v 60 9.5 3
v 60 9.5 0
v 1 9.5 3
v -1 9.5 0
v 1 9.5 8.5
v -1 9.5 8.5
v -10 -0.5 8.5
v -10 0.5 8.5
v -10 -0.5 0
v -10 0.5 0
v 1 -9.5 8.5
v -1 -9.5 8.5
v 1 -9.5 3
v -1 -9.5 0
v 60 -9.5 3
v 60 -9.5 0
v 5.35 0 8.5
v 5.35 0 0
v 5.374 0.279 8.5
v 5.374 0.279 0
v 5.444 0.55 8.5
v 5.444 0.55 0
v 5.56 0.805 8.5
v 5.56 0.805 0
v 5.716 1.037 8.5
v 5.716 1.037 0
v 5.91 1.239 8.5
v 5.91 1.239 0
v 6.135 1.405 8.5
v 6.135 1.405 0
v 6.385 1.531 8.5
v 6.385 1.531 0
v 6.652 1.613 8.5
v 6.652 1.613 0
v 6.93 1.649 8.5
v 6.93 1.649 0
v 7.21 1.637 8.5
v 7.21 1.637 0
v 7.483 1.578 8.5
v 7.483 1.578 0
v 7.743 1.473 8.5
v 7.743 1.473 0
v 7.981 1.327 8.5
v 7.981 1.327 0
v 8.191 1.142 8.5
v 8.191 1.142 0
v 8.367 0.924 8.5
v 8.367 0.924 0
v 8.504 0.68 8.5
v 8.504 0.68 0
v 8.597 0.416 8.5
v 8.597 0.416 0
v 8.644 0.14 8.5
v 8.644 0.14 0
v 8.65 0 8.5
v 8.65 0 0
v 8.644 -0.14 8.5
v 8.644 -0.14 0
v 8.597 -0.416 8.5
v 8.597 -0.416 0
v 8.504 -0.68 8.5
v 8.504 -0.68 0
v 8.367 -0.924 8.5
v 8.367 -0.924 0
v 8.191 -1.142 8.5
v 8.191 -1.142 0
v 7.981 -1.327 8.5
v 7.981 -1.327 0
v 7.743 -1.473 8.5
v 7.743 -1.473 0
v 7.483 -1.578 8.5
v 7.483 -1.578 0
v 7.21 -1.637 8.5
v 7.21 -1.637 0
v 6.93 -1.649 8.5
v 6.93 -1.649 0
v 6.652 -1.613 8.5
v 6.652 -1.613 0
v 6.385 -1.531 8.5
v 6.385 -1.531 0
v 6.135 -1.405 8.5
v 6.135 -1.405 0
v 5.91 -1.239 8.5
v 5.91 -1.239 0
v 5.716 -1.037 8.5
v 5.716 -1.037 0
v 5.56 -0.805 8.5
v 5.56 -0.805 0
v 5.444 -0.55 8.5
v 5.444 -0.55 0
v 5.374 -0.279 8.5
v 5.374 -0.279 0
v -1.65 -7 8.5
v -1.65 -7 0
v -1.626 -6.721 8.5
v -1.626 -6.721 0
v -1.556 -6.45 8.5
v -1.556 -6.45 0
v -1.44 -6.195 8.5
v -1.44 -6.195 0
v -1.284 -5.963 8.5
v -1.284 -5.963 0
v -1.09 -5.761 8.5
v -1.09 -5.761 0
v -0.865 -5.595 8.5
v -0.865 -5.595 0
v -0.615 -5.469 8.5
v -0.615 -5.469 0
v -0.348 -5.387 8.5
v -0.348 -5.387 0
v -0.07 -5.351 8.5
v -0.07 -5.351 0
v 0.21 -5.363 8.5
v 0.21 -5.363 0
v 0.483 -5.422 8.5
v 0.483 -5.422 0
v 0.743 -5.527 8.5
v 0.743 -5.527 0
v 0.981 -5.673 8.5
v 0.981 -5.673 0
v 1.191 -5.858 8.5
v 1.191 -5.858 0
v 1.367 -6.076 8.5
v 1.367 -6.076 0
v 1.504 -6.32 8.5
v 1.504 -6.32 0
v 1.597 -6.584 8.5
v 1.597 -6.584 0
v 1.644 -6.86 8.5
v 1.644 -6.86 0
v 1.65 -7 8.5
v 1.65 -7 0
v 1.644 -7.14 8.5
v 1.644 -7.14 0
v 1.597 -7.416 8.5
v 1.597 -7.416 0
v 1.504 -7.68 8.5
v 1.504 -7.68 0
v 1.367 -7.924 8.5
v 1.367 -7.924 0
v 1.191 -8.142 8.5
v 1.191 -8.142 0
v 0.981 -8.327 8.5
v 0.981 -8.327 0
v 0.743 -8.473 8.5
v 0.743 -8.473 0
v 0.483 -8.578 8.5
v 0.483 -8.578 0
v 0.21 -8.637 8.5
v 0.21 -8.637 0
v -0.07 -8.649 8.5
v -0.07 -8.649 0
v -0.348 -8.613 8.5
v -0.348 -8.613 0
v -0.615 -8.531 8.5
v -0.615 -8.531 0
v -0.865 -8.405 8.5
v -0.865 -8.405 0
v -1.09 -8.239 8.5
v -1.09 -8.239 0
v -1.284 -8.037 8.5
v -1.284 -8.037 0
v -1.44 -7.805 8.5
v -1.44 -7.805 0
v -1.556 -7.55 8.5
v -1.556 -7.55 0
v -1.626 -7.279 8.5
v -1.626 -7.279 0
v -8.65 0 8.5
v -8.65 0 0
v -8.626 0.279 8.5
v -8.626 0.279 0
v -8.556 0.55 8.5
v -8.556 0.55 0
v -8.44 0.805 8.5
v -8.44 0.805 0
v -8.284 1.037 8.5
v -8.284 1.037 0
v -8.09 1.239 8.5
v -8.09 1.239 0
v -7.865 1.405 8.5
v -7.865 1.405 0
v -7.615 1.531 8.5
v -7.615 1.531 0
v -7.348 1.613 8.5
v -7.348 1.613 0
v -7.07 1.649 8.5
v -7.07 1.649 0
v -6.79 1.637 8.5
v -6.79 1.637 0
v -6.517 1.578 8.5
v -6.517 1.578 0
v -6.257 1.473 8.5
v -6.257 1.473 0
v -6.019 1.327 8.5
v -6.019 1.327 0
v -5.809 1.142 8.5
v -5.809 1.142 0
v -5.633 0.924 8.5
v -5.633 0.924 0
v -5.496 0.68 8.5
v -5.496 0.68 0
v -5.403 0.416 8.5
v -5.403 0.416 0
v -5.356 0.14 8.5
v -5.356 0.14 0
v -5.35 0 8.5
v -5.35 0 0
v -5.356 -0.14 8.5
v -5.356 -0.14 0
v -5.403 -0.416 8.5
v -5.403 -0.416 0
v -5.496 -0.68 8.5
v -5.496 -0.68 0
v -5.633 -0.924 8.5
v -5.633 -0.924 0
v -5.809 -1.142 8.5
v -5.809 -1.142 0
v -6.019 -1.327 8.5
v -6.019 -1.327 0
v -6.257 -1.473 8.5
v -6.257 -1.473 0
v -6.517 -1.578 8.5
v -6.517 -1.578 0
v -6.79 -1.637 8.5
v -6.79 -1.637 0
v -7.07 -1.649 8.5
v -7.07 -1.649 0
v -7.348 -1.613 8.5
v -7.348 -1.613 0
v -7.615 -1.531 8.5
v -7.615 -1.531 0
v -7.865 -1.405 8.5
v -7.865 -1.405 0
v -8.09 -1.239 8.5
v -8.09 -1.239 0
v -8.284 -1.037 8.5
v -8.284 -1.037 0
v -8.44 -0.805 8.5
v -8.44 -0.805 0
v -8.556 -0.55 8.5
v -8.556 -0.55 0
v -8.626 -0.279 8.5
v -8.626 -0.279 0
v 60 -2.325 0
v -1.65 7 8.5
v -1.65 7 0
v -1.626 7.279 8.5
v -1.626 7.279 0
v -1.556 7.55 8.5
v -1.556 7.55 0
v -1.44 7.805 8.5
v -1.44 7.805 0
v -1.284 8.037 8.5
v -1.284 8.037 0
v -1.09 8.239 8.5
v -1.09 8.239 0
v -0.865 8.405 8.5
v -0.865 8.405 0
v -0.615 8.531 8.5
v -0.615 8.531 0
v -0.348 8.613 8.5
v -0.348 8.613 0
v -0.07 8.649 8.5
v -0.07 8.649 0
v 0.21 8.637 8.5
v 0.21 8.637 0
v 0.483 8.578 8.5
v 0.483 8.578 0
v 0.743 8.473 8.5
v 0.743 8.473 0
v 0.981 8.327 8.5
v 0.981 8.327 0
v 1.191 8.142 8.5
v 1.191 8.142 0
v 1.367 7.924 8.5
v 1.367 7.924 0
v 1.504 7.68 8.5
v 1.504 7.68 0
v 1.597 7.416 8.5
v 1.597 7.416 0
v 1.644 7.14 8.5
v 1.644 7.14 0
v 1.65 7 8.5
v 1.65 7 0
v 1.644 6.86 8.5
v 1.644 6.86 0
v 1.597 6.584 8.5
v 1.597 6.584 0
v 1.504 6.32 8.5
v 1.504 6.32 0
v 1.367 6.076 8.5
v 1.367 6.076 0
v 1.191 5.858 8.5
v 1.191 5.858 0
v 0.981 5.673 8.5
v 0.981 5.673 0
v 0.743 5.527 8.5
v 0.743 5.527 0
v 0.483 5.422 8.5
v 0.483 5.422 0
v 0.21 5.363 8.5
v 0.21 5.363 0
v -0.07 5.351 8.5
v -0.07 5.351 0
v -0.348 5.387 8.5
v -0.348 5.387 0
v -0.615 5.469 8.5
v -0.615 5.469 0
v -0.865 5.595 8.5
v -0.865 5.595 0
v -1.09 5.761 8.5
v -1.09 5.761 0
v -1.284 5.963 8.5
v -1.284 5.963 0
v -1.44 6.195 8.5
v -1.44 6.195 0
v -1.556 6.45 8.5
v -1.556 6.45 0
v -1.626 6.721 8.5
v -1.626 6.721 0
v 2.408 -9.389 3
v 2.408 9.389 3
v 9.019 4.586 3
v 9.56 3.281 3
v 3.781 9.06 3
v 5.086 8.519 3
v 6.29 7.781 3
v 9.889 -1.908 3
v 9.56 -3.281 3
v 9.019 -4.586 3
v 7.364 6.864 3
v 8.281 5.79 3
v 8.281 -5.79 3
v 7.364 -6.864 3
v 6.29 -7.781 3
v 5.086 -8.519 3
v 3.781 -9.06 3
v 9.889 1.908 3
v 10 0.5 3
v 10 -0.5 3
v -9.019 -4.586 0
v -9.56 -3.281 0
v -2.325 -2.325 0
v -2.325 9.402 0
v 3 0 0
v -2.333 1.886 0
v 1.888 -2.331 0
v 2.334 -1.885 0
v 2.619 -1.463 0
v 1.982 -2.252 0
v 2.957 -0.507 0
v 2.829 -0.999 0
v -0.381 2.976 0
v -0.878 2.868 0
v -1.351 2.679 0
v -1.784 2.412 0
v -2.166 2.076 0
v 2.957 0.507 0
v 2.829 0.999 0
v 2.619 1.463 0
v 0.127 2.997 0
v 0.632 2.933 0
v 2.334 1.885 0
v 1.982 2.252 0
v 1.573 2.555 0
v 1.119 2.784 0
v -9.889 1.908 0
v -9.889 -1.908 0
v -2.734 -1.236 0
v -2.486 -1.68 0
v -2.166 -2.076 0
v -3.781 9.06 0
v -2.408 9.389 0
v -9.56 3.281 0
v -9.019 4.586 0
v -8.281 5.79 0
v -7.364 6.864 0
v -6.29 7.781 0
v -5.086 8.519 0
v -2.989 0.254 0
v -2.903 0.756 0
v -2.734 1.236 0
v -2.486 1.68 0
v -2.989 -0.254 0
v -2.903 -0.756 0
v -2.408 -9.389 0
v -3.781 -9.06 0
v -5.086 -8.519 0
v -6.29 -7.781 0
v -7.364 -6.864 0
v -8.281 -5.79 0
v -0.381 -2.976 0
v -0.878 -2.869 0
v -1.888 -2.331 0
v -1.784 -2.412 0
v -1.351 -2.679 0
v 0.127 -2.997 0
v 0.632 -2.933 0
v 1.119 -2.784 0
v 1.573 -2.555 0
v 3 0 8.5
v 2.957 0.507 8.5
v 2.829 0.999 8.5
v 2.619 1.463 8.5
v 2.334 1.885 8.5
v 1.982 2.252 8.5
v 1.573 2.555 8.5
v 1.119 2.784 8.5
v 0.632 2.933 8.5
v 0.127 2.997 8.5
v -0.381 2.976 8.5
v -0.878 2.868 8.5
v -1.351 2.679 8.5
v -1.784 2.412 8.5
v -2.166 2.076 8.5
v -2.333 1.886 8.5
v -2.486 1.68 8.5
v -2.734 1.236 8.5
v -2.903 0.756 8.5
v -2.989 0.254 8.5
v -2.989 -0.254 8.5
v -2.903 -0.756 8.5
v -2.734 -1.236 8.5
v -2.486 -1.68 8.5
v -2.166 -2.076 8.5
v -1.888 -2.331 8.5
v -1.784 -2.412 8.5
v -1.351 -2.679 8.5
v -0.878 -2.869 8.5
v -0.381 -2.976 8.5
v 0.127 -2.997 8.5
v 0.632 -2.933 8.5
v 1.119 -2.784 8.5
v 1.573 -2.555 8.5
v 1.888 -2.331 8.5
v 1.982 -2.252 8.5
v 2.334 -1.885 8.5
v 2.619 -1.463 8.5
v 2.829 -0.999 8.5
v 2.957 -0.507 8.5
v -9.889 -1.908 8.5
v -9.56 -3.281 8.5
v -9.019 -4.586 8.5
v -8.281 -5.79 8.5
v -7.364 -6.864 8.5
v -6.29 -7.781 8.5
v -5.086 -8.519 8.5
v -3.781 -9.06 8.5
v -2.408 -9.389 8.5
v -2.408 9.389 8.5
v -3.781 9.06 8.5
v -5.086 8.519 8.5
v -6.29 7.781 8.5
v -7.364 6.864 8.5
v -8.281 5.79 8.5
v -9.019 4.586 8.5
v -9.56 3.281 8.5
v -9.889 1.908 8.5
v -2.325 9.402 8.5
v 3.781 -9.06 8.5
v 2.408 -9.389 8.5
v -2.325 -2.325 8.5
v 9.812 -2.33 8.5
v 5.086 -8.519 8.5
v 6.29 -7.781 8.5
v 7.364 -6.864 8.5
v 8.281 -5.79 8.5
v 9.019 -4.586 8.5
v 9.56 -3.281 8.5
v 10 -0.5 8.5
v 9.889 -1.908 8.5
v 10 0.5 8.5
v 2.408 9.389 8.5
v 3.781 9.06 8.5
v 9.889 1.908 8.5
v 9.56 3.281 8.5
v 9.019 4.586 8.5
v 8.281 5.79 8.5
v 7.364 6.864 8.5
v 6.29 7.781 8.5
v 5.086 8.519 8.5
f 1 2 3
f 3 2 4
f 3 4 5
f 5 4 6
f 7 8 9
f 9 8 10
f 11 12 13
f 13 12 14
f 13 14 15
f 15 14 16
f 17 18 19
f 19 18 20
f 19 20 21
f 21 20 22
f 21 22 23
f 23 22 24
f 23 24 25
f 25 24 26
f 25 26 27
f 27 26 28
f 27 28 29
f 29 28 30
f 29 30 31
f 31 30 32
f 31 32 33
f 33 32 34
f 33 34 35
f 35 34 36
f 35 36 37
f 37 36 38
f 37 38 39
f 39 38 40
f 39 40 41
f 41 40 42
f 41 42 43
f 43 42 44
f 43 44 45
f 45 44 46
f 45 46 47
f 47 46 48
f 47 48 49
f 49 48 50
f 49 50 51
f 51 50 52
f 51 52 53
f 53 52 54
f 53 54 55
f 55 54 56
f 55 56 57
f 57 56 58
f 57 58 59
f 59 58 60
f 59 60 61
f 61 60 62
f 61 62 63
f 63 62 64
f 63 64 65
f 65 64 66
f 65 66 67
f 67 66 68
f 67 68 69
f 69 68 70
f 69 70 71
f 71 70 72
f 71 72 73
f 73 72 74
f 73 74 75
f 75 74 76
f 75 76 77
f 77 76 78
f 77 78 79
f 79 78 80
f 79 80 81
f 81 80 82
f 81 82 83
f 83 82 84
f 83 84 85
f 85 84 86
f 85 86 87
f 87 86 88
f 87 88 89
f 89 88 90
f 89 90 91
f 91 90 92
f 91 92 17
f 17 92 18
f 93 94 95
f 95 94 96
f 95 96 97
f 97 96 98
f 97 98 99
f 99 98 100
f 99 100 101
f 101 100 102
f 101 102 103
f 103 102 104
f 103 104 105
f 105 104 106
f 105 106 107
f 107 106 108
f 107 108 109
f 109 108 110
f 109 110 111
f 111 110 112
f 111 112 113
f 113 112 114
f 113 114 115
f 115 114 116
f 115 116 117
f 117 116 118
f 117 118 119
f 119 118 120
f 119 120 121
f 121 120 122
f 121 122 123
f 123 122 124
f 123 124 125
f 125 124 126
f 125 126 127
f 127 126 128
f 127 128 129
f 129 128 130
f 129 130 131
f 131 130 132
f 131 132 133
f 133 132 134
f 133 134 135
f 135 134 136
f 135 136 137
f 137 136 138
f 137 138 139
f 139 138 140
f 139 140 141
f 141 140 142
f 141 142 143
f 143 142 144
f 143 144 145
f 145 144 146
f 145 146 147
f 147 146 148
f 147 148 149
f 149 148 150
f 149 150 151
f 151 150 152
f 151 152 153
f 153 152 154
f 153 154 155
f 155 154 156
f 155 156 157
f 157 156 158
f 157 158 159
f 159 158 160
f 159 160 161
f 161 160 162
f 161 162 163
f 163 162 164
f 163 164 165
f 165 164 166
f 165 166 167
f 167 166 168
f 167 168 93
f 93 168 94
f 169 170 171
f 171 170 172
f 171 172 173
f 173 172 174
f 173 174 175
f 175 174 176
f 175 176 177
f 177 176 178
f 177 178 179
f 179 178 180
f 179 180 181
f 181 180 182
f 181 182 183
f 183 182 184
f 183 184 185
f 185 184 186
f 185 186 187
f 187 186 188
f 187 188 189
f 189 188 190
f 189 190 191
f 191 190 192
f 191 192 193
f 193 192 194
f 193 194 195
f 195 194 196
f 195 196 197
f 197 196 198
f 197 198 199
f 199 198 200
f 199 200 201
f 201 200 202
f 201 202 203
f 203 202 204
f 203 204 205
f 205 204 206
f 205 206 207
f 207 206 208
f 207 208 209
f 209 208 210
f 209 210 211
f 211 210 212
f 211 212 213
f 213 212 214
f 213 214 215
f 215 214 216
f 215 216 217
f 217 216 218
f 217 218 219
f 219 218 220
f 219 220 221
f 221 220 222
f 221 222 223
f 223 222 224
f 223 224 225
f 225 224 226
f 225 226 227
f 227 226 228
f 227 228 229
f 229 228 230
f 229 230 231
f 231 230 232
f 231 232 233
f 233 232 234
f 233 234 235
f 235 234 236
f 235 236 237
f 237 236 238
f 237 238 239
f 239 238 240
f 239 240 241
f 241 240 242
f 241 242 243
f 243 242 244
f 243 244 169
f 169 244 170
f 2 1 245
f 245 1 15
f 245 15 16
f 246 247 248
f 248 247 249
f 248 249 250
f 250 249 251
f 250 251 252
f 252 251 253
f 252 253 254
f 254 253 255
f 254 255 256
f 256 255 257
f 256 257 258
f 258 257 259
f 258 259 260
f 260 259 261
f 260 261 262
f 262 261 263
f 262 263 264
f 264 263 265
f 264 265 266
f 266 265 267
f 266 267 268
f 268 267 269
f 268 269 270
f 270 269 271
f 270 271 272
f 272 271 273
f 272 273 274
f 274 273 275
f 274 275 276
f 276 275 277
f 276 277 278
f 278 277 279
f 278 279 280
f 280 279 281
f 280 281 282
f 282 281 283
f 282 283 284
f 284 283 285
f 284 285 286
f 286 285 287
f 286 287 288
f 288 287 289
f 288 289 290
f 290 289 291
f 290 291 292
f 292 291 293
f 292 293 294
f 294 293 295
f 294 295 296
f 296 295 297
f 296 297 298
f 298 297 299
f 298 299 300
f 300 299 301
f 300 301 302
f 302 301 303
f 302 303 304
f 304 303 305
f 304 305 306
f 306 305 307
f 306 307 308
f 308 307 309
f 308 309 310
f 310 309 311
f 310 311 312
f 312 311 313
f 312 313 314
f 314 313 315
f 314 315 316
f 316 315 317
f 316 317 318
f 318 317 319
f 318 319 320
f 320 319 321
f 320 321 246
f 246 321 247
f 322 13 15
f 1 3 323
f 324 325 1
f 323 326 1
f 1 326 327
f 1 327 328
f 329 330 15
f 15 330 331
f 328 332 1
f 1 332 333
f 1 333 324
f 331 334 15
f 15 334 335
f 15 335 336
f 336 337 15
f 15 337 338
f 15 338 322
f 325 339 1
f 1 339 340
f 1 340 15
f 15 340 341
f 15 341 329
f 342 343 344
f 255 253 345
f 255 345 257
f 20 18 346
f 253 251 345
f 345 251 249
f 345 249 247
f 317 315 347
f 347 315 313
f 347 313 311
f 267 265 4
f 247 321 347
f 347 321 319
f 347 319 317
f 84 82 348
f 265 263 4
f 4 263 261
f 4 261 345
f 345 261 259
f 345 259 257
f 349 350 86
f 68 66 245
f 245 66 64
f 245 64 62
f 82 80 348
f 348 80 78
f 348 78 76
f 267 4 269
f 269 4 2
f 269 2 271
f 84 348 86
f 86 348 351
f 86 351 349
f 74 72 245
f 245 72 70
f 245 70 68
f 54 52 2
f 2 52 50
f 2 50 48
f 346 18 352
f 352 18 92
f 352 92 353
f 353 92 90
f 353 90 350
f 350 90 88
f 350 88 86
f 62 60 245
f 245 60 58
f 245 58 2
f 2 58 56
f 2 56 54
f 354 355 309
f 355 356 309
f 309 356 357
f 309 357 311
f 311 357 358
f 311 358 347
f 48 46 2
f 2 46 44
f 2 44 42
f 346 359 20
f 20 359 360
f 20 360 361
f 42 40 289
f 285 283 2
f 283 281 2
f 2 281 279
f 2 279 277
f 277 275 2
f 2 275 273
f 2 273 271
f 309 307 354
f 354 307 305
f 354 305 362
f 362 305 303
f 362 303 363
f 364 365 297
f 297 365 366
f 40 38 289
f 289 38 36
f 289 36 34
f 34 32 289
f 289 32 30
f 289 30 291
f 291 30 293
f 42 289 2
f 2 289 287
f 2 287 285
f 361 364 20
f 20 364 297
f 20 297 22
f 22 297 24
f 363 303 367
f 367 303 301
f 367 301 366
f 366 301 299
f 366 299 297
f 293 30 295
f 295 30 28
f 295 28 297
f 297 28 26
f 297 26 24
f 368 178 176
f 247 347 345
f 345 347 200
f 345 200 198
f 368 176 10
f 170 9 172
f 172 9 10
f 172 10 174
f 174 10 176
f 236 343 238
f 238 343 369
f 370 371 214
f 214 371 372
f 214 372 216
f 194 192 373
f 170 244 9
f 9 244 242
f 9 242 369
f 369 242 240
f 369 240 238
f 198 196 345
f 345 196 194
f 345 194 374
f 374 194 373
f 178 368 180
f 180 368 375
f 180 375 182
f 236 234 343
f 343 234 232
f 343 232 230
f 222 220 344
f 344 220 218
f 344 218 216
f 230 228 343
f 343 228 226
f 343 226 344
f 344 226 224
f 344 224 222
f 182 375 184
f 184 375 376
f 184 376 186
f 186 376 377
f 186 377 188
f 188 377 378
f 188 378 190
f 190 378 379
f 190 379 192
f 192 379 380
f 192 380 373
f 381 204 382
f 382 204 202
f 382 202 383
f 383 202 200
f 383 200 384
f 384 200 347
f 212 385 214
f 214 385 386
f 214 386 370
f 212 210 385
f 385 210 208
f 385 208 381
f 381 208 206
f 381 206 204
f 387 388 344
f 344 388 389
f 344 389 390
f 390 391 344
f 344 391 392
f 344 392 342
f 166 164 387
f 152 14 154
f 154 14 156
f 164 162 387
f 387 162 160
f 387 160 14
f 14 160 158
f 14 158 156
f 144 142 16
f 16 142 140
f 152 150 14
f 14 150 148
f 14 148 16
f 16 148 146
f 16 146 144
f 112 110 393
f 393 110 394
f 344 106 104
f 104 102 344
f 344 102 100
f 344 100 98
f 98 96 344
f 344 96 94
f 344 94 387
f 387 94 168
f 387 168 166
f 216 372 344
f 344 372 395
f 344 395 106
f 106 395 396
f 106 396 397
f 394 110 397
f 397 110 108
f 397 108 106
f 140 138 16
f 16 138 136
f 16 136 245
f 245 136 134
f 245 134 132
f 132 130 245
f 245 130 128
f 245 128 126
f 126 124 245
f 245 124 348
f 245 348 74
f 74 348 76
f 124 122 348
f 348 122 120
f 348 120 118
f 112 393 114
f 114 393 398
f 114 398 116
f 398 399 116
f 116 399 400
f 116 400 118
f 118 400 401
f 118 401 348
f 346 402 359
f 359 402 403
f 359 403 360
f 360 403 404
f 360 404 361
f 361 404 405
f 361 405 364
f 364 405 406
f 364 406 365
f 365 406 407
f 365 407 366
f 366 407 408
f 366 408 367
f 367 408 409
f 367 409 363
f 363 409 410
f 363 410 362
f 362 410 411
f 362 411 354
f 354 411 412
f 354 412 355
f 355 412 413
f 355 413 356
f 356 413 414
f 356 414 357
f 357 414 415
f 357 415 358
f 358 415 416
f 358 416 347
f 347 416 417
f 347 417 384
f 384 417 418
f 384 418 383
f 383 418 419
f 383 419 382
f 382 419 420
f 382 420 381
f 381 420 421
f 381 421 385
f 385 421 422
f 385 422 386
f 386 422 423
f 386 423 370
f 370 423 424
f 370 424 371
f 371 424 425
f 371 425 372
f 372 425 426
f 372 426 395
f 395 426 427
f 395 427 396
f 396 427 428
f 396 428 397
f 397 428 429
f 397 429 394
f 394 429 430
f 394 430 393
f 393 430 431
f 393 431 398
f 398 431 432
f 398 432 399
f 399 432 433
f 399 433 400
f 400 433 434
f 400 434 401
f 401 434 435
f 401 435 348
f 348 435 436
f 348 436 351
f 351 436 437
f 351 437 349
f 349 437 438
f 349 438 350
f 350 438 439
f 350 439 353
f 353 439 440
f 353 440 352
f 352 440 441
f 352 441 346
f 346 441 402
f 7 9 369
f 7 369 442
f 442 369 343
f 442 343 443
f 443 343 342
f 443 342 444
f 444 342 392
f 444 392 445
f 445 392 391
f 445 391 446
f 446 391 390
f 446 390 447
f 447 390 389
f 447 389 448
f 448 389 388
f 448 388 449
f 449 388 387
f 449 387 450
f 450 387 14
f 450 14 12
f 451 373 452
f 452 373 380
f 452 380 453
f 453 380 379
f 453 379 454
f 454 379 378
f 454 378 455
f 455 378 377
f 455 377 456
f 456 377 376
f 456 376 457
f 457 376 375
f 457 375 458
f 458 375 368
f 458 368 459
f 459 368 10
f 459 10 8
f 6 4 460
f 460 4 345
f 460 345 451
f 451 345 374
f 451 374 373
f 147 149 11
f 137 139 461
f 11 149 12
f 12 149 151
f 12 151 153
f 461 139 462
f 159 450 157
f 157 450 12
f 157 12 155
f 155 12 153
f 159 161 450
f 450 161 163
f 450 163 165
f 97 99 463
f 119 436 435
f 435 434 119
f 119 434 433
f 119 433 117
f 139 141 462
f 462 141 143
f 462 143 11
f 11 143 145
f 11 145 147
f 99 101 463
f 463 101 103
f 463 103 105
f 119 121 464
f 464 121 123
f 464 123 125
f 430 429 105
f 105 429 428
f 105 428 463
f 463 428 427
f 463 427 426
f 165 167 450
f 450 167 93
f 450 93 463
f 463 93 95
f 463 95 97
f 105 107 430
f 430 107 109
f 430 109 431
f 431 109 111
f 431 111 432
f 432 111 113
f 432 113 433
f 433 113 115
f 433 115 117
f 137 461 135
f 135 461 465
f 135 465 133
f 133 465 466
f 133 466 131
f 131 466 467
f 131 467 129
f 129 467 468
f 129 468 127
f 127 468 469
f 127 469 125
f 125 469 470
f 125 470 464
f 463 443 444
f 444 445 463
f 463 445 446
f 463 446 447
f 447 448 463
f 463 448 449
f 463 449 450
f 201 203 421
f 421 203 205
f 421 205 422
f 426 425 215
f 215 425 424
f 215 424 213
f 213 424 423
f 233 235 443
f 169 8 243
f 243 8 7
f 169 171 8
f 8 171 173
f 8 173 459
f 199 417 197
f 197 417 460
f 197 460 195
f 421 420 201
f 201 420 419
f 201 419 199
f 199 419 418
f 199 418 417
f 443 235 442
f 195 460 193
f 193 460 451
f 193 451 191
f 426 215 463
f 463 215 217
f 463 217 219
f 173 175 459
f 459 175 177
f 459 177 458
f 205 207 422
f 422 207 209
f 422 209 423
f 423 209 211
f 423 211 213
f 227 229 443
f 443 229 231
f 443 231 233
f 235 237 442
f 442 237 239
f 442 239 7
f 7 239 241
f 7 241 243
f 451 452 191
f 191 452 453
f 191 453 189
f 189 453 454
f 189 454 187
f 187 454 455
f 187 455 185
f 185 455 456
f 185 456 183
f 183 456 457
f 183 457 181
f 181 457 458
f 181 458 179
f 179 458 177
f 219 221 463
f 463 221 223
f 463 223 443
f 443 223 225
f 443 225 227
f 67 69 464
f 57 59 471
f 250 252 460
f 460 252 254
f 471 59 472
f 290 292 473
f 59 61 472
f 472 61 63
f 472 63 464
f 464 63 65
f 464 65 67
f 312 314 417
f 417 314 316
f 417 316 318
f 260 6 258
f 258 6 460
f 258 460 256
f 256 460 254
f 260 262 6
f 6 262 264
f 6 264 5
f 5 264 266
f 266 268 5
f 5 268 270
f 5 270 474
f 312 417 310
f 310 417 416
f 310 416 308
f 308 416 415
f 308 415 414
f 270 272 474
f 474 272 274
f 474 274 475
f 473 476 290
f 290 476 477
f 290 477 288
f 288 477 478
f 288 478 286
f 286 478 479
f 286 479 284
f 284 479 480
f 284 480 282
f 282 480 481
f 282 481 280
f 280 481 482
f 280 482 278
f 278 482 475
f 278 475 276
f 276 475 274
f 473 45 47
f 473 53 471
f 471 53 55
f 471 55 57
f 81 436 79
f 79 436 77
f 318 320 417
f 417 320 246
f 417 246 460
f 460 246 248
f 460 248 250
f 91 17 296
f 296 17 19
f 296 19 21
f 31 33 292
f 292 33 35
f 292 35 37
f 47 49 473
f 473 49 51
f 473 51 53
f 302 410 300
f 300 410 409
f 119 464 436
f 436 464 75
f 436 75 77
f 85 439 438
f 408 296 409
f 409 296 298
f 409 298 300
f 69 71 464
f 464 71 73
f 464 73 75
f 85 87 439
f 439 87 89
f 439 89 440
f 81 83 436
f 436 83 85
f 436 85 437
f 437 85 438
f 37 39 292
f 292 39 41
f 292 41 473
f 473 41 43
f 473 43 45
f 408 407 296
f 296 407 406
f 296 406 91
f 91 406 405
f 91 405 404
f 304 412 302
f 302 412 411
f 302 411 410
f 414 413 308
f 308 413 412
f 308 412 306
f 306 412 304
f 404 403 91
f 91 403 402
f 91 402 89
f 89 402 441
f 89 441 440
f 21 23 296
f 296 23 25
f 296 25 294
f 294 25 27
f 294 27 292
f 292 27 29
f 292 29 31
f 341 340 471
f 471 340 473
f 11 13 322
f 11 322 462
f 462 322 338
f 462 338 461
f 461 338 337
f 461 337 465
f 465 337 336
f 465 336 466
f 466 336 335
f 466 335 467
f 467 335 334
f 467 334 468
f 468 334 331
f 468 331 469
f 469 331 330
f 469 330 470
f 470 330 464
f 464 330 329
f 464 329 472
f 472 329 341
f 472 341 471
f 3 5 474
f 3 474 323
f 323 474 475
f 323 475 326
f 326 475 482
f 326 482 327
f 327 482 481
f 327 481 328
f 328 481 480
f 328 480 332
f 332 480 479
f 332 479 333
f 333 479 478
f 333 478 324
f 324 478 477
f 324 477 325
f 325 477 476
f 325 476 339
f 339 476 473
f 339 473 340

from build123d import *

# Parameters (mm, degrees)
SKETCH1_W           = 70
SKETCH1_H           = 19
SKETCH1_R           = 1.65
BOSS_EXTRUDE1_DEPTH = 3
SKETCH2_R           = 3
CUT_EXTRUDE1_DEPTH  = 3
FILLET2_R           = 9
SKETCH3_R           = 1.65
SKETCH3_R_2         = 3
BOSS_EXTRUDE2_DEPTH = 5.5
FILLET3_R           = 9


with BuildPart() as part:
    # Sketch1 → Boss-Extrude1 (new body)
    with BuildSketch(Plane.XY):
        with Locations((25, 0)):
            Rectangle(SKETCH1_W, SKETCH1_H)
        with Locations((0, 7)):
            Circle(SKETCH1_R, mode=Mode.SUBTRACT)
        with Locations((7, 0)):
            Circle(SKETCH1_R, mode=Mode.SUBTRACT)
        with Locations((0, -7)):
            Circle(SKETCH1_R, mode=Mode.SUBTRACT)
        with Locations((-7, 0)):
            Circle(SKETCH1_R, mode=Mode.SUBTRACT)
    extrude(amount=BOSS_EXTRUDE1_DEPTH)

    # Sketch2 → Cut-Extrude1 (cut)
    with BuildSketch(Plane.XY.offset(3)):
        Circle(SKETCH2_R)
    extrude(amount=-CUT_EXTRUDE1_DEPTH, mode=Mode.SUBTRACT)

    # Fillet2
    fillet2_edges = [part.edges().sort_by_distance(p)[0] for p in [
        (-10, -9.5, 1.5),
        (-10, 9.5, 1.5),
    ]]
    fillet(fillet2_edges, radius=FILLET2_R)

    # Sketch3 → Boss-Extrude2 (add)
    with BuildSketch(Plane.XY.offset(3)):
        with BuildLine():
            Line((-10, 0.5), (-10, -0.5))
            ThreePointArc((-10, -0.5), (-7.363961031, -6.863961031), (-1, -9.5))
            Line((-1, -9.5), (10, -9.5))
            Line((10, -9.5), (10, 9.5))
            Line((10, 9.5), (-1, 9.5))
            ThreePointArc((-1, 9.5), (-7.363961031, 6.863961031), (-10, 0.5))
        make_face()
        with Locations((0, 7)):
            Circle(SKETCH3_R, mode=Mode.SUBTRACT)
        with Locations((-7, 0)):
            Circle(SKETCH3_R, mode=Mode.SUBTRACT)
        with Locations((0, -7)):
            Circle(SKETCH3_R, mode=Mode.SUBTRACT)
        Circle(SKETCH3_R_2, mode=Mode.SUBTRACT)
        with Locations((7, 0)):
            Circle(SKETCH3_R, mode=Mode.SUBTRACT)
    extrude(amount=BOSS_EXTRUDE2_DEPTH)

    # Fillet3
    fillet3_edges = [part.edges().sort_by_distance(p)[0] for p in [
        (10, -9.5, 5.75),
        (10, 9.5, 5.75),
    ]]
    fillet(fillet3_edges, radius=FILLET3_R)


solid = part.part
